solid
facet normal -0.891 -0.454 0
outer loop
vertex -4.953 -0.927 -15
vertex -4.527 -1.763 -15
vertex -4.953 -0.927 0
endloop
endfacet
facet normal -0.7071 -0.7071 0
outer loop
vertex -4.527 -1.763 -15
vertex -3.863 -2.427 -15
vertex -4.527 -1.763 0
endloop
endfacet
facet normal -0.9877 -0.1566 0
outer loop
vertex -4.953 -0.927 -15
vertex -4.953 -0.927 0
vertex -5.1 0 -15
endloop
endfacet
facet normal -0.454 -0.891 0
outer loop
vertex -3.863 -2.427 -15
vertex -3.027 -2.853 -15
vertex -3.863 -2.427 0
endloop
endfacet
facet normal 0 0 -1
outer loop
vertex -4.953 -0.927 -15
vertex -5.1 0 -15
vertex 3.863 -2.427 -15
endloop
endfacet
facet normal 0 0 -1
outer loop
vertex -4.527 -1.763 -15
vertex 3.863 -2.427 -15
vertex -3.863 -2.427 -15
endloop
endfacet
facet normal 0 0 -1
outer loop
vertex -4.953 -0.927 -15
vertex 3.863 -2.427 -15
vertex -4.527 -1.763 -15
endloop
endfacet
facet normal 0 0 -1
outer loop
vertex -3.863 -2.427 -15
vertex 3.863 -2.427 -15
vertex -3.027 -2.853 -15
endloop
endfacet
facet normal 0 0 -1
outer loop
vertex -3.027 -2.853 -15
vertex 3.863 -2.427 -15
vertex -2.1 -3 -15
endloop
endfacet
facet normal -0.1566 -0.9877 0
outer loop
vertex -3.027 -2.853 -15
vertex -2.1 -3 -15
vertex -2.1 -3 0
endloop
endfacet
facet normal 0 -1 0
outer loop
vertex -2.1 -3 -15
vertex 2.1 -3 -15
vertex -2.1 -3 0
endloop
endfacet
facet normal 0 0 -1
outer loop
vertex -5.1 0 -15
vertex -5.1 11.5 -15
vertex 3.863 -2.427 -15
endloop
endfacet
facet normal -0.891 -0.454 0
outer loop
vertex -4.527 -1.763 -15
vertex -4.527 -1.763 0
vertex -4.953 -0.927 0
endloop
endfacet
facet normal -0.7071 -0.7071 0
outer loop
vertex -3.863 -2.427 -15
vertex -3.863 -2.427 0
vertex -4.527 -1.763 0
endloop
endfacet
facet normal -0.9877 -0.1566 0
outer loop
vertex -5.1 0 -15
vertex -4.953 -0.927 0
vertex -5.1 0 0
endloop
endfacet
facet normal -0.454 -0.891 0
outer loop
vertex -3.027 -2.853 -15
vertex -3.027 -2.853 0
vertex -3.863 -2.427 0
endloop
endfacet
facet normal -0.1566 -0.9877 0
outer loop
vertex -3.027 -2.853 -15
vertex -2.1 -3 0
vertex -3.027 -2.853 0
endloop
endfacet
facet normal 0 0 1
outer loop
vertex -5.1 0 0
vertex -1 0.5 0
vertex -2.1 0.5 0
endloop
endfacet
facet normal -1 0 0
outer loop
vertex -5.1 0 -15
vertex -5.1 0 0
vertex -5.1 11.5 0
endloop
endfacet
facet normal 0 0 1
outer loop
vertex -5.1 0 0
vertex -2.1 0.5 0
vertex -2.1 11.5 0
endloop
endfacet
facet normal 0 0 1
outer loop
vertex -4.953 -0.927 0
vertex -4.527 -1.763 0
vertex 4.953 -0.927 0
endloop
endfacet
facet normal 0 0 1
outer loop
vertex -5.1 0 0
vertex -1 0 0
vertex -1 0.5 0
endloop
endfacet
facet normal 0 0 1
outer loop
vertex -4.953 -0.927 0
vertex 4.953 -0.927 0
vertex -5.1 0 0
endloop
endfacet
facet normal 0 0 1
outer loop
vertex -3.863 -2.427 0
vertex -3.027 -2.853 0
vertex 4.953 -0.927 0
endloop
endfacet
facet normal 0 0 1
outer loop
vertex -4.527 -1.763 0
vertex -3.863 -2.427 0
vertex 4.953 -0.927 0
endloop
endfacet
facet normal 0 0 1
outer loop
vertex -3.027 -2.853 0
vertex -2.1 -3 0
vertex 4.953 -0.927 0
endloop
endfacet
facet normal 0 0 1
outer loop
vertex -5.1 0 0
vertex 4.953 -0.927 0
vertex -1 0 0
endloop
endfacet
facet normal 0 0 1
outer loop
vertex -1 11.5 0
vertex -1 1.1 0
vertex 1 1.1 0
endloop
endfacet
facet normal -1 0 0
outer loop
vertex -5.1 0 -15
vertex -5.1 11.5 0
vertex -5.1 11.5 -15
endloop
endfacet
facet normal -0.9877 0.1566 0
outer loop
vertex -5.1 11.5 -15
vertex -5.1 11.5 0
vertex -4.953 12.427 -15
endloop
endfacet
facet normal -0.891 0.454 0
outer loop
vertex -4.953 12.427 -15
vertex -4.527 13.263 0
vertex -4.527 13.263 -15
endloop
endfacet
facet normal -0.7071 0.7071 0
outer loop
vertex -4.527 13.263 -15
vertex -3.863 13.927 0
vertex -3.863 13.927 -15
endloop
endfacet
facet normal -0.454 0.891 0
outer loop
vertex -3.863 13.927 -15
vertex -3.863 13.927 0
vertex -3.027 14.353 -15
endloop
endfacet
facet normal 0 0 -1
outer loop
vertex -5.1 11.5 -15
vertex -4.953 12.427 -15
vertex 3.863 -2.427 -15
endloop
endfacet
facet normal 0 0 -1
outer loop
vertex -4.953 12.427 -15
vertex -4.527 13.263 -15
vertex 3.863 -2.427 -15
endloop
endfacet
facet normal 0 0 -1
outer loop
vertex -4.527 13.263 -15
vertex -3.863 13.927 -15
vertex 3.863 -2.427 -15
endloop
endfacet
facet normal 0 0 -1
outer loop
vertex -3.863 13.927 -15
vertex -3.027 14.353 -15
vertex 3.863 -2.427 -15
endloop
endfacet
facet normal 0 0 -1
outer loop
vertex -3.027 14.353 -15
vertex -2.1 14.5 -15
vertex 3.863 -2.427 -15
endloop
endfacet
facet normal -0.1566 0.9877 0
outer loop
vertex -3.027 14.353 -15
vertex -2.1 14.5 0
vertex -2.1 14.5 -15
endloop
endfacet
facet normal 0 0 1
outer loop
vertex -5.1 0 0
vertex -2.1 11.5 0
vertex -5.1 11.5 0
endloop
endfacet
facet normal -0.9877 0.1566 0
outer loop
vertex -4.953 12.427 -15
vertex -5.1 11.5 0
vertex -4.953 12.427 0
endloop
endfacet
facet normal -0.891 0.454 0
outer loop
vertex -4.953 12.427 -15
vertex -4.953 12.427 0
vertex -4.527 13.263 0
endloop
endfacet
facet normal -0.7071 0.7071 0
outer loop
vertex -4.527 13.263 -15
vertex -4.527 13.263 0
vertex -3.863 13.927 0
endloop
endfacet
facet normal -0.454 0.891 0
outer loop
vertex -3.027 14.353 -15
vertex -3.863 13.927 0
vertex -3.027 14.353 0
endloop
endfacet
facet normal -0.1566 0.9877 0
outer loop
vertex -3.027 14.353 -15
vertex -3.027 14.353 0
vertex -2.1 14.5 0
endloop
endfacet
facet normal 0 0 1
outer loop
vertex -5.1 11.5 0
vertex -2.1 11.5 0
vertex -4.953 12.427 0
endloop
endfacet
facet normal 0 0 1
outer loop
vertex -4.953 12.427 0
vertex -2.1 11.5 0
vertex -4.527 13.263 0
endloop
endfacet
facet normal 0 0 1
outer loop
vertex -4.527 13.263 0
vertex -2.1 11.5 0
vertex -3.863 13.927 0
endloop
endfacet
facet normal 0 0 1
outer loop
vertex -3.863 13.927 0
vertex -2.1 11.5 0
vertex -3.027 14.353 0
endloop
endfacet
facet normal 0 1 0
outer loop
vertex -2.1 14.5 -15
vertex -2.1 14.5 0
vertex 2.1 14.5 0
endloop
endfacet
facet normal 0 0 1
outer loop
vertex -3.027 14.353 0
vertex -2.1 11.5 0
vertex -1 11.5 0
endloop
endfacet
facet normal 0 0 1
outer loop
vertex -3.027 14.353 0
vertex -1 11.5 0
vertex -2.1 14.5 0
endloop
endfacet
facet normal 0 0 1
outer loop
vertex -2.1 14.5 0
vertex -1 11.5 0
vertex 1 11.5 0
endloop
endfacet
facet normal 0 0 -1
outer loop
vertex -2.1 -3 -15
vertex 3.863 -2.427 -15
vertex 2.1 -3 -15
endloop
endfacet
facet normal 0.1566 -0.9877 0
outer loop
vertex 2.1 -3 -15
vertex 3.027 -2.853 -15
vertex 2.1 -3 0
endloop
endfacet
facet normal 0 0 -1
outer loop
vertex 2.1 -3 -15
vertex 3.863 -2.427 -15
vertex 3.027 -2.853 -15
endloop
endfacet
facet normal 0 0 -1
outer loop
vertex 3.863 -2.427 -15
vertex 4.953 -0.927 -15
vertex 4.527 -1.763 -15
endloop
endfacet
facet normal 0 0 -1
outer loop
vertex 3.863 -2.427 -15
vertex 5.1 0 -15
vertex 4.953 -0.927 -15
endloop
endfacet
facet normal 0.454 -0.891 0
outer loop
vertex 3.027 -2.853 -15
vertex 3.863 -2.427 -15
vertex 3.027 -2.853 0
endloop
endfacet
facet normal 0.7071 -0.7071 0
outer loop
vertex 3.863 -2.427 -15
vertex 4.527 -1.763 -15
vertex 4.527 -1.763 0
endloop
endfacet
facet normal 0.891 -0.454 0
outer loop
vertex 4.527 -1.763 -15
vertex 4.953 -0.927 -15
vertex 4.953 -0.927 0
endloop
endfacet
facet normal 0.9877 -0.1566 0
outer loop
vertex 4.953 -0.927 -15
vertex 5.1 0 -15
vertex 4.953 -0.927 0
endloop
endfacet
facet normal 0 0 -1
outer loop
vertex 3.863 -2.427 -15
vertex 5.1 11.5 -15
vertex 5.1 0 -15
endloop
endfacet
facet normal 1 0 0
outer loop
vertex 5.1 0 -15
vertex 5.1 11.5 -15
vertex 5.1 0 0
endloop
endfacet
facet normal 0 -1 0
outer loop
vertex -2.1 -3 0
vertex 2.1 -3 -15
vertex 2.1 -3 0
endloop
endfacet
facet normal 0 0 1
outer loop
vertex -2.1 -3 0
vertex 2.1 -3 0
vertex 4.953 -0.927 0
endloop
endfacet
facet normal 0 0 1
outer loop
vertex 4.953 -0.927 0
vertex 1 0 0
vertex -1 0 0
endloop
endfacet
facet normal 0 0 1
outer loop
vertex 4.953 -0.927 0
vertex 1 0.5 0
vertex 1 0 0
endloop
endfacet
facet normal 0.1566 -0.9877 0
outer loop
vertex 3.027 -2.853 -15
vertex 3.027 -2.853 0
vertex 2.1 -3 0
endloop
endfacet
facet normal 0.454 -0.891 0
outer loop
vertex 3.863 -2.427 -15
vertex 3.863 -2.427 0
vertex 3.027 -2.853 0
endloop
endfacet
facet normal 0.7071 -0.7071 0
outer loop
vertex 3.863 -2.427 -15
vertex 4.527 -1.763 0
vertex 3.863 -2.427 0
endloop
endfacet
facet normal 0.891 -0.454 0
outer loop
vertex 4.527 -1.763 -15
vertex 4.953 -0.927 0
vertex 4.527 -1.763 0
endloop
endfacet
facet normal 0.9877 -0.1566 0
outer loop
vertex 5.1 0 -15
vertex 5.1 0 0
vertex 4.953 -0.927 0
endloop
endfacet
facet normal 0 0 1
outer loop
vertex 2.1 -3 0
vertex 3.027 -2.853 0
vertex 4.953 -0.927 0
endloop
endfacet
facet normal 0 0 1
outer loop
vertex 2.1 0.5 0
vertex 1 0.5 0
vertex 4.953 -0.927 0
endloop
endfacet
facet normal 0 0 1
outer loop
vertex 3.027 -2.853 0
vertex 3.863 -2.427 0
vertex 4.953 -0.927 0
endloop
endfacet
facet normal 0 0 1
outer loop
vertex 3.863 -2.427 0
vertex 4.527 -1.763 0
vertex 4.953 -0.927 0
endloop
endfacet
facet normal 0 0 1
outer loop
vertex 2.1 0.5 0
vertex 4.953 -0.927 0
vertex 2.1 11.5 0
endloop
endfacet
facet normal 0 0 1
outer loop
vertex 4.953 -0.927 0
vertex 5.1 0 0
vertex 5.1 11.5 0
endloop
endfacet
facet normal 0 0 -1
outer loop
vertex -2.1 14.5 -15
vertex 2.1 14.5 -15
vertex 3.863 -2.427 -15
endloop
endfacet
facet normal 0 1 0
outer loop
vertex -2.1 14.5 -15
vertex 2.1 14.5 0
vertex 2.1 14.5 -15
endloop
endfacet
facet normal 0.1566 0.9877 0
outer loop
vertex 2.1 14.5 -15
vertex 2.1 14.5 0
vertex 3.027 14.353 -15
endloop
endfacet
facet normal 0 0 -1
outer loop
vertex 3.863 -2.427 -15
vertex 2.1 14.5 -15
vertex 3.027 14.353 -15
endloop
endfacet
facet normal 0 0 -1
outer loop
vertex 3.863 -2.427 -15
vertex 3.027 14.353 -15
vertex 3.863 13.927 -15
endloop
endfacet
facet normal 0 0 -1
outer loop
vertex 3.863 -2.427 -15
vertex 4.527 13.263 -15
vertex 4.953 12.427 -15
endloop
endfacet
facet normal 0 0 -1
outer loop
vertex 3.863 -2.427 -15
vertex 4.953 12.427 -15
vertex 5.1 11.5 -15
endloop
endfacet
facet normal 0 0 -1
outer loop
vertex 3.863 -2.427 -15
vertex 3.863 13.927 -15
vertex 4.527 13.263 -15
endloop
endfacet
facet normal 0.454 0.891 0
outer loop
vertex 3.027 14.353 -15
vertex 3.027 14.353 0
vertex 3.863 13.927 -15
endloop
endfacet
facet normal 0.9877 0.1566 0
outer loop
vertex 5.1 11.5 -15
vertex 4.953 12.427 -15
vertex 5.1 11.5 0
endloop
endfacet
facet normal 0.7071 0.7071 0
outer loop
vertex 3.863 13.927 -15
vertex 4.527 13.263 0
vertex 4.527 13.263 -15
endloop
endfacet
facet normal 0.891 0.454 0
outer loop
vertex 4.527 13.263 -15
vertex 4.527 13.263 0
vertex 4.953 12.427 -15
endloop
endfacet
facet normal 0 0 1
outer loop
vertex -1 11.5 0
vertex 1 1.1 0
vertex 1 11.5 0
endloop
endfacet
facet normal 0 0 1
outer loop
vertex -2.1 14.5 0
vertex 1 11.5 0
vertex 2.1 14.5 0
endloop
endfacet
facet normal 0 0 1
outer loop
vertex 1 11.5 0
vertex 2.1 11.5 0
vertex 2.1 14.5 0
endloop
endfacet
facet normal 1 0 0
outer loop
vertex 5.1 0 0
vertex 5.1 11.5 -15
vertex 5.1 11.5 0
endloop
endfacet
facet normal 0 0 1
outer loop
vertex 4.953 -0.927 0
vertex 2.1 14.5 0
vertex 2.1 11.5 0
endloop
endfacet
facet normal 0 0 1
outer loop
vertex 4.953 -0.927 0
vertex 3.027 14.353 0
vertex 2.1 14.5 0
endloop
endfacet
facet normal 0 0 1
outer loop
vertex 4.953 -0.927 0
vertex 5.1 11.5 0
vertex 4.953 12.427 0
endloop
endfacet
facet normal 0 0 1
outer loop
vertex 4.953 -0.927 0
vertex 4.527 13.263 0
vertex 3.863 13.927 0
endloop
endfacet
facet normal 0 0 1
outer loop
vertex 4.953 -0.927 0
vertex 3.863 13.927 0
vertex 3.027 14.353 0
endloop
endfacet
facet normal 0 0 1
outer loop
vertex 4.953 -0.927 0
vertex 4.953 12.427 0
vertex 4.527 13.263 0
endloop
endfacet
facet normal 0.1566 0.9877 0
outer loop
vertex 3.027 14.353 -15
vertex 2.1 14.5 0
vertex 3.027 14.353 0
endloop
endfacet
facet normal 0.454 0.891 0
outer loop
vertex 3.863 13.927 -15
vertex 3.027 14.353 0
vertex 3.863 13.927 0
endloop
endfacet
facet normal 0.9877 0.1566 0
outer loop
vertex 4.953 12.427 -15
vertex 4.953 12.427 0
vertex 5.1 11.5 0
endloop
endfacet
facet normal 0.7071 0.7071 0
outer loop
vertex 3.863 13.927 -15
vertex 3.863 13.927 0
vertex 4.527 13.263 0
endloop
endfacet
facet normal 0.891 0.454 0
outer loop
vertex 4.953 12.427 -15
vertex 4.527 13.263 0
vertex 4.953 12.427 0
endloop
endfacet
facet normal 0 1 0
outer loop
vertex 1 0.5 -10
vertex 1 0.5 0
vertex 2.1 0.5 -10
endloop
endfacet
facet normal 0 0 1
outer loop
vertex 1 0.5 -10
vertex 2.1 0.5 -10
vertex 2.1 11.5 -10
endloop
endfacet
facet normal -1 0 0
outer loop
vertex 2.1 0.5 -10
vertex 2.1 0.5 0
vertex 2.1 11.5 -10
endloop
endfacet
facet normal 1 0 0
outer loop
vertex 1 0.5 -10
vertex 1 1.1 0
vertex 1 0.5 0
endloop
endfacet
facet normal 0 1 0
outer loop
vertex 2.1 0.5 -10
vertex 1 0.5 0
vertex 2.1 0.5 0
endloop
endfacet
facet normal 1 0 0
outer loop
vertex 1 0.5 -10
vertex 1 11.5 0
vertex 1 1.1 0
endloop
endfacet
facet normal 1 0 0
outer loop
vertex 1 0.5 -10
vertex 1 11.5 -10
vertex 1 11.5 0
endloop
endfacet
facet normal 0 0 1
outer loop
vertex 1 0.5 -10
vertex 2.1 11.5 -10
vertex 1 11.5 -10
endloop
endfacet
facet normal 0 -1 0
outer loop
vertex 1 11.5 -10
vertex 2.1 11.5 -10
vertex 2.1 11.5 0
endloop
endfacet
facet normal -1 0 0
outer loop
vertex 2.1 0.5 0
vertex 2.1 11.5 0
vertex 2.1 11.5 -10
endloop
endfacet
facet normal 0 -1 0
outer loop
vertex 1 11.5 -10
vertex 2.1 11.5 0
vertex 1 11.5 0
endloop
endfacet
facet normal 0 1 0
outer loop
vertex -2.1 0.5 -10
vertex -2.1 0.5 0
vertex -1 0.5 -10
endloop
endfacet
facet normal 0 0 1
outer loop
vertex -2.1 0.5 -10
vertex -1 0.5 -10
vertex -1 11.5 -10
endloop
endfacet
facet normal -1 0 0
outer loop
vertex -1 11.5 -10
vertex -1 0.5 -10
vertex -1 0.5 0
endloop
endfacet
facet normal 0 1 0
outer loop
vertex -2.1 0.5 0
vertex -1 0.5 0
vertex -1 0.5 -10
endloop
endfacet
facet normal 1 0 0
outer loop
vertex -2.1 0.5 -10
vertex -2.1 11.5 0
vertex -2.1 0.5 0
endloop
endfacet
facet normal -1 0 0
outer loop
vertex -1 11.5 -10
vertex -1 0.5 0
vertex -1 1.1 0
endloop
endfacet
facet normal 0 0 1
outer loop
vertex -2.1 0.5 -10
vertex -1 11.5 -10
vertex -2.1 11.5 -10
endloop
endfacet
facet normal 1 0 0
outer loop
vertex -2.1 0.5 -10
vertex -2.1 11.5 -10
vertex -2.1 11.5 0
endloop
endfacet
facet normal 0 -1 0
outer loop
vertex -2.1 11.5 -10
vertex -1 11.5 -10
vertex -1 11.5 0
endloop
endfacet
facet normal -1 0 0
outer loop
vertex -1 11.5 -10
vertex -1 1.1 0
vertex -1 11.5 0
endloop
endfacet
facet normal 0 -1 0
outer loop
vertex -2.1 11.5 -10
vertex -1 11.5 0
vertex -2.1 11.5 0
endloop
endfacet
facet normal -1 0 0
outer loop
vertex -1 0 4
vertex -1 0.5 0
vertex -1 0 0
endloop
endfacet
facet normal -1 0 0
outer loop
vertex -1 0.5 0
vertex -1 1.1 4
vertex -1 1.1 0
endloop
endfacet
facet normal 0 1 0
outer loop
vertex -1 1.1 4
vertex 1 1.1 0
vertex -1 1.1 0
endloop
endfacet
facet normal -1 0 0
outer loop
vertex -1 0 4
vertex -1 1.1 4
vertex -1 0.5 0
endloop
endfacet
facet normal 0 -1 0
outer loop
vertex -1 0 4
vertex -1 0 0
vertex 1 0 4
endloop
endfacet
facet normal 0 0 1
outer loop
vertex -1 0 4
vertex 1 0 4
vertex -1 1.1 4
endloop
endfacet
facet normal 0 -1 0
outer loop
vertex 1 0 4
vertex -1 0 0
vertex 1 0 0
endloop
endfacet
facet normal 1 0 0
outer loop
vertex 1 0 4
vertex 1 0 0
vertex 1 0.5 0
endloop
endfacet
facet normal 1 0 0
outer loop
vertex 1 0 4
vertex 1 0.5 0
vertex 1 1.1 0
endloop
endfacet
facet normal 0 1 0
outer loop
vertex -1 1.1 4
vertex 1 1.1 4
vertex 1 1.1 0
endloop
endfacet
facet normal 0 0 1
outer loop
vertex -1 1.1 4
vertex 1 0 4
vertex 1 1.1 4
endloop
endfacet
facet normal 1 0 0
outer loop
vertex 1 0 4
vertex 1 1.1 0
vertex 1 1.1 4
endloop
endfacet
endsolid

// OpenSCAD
bladeWidth = 4.2;

slotWidth = 1.1;
slotLength = 11;
slotDepth = 10;
slotLift = 0.5;

turnerWidth = bladeWidth - slotWidth * 2;
turnerHeight = slotWidth;
turnerDepth = 4;

bowLength = 15;
bowPad = 3;

module slot() {
    translate([turnerWidth/2, slotLift, -slotDepth]) cube([slotWidth, slotLength, slotDepth + 1]);
}

module slots() {
    slot();
    mirror([1, 0, 0]) slot();
}

module turner() {
    translate([-turnerWidth/2, 0, 0]) cube([turnerWidth, turnerHeight, turnerDepth]);
}

module bow() {
    minkowski() {
        translate([-bladeWidth/2, 0, -bowLength]) cube([bladeWidth, slotLength + slotLift, bowLength]);
        cylinder(d=bowPad*2, h=0.00001, $fn=20);
    }
}

difference() {
    bow();
    slots();
}
turner();
